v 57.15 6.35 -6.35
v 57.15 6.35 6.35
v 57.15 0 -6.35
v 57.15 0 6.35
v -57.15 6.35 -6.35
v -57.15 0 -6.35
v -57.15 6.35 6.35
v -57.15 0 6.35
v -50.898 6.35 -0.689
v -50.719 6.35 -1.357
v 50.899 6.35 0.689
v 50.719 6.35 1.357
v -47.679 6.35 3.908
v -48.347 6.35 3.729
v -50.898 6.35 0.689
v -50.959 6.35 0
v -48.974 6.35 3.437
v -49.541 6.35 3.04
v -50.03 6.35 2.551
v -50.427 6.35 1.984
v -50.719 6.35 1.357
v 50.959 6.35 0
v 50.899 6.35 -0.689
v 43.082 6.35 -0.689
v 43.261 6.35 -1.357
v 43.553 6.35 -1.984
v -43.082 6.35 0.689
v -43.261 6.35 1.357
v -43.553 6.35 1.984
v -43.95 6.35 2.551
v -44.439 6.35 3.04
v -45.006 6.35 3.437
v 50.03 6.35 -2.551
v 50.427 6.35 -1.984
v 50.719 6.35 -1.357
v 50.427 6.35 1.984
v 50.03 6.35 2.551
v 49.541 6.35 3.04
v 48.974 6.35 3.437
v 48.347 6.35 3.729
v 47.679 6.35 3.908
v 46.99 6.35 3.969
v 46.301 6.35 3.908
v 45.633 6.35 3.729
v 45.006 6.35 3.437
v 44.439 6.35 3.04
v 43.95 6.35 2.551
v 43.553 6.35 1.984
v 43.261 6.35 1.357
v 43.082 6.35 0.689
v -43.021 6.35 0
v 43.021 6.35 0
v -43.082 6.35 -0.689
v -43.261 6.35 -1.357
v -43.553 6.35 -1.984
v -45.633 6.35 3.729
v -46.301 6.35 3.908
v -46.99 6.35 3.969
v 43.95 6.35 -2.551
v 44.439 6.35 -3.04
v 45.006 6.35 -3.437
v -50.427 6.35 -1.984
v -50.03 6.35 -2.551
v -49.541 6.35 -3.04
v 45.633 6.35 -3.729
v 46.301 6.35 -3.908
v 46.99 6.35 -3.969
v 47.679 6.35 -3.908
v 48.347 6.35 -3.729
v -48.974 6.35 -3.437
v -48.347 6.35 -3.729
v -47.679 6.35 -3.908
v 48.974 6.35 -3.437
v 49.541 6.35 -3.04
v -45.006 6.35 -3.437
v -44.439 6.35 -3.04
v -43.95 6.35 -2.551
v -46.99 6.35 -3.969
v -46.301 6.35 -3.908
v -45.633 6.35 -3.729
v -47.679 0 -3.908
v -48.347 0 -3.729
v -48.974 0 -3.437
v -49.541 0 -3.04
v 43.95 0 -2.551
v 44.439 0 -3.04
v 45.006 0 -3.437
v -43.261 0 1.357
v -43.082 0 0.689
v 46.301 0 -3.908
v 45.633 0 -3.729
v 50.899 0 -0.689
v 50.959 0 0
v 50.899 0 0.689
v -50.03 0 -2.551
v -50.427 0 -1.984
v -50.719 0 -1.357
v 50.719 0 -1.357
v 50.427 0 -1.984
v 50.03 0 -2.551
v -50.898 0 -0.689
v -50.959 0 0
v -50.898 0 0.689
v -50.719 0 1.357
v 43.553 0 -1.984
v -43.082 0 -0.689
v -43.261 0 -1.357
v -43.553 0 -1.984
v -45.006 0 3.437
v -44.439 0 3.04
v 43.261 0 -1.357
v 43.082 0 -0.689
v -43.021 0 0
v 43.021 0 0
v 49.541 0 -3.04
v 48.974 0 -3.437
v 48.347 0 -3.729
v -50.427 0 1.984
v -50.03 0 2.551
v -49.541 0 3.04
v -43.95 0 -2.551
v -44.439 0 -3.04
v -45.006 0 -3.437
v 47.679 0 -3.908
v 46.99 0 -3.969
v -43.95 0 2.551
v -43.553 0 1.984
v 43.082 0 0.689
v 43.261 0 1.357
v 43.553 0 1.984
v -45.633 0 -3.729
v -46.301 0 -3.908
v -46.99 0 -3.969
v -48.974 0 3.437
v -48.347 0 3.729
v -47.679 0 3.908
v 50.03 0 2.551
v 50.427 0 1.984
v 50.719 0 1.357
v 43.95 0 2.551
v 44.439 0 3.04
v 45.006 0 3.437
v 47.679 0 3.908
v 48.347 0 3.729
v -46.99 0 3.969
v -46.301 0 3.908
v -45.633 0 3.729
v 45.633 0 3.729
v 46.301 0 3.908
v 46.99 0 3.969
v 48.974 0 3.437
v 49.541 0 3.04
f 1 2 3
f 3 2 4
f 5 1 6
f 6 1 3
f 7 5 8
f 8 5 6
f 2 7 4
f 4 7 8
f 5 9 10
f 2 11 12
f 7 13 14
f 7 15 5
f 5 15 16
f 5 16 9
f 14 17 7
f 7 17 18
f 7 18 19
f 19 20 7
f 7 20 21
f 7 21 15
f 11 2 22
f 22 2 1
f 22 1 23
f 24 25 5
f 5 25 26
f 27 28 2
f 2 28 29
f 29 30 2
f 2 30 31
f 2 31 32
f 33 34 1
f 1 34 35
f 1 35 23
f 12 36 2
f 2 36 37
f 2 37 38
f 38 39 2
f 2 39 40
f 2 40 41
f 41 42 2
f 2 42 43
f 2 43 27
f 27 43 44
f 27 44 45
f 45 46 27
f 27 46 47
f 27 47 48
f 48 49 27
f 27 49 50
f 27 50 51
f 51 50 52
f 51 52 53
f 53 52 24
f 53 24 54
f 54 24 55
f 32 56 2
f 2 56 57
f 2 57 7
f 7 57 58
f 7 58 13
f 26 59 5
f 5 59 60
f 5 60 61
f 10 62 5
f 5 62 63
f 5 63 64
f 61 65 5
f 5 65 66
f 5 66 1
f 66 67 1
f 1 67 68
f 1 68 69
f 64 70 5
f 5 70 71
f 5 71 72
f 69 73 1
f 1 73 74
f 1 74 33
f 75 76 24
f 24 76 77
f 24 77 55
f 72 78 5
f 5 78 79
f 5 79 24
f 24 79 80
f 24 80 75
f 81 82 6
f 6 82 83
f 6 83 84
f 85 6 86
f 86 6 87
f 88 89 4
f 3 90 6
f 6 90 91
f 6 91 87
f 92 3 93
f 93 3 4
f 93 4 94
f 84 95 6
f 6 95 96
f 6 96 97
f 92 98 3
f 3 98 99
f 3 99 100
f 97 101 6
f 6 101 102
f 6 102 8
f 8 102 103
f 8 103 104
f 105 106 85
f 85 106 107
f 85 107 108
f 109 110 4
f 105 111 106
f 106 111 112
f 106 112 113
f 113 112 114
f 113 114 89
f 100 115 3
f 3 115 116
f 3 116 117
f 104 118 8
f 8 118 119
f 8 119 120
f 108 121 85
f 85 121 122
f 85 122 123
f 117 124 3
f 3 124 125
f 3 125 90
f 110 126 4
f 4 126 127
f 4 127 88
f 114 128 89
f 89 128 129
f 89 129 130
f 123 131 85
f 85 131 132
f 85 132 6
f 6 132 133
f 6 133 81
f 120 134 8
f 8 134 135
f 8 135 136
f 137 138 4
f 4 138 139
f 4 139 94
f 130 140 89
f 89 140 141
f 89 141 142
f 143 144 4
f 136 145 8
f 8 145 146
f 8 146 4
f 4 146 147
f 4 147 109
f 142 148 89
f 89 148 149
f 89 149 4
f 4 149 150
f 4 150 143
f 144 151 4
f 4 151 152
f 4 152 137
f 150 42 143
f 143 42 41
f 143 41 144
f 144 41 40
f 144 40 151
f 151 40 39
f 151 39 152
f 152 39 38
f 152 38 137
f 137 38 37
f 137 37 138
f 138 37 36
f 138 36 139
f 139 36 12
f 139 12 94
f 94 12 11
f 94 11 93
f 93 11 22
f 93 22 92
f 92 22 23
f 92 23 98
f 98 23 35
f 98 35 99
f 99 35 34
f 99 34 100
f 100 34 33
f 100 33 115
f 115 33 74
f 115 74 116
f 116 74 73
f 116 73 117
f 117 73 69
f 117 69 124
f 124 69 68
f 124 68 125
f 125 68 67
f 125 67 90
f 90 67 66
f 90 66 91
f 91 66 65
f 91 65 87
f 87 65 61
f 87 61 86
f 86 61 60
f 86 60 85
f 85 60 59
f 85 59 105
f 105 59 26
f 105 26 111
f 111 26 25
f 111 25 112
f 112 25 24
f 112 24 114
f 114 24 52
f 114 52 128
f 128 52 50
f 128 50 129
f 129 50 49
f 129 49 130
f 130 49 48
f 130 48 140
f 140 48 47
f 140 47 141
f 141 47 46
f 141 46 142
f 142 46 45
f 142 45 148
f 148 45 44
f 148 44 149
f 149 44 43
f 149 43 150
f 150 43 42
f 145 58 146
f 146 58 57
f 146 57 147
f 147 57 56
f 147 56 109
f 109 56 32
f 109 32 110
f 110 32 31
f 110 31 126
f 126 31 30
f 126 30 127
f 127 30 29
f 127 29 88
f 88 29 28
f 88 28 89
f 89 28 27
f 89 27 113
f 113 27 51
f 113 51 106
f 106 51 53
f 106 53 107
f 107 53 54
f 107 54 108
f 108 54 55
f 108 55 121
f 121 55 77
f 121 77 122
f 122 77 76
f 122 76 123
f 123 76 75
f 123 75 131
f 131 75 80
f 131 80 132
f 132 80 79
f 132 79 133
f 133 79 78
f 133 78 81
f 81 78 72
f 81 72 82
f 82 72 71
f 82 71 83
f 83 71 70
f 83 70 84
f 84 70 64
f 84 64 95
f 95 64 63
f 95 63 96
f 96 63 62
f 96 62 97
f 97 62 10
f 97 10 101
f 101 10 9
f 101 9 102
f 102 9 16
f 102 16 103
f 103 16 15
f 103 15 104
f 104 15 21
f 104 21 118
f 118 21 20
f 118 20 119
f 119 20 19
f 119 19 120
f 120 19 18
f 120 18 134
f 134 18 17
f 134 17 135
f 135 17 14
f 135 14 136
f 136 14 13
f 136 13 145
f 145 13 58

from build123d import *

# Parameters (mm, degrees)
SKETCH1_W                          = 114.3
SKETCH1_H                          = 12.7
BOSS_EXTRUDE1_DEPTH                = 6.35
F_5_16_0_3125_DIAMETER_HOLE1_D     = 7.9375
F_5_16_0_3125_DIAMETER_HOLE1_DEPTH = 14.986
F_5_16_0_3125_DIAMETER_HOLE1_TIP   = 2.384665582


with BuildPart() as part:
    # Sketch1 → Boss-Extrude1 (new body)
    with BuildSketch(Plane(origin=(0, 0, 0), x_dir=(1, 0, 0), z_dir=(0, 1, 0))):
        Rectangle(SKETCH1_W, SKETCH1_H)
    extrude(amount=BOSS_EXTRUDE1_DEPTH)

    # 5/16 (0.3125) Diameter Hole1
    with Locations(Plane(origin=(0, 6.35, 0), x_dir=(1, 0, 0), z_dir=(0, 1, 0))):
        with Locations((-46.99, 0), (46.99, 0)):
            Hole(F_5_16_0_3125_DIAMETER_HOLE1_D / 2, depth=F_5_16_0_3125_DIAMETER_HOLE1_DEPTH)
            with Locations((0, 0, -(F_5_16_0_3125_DIAMETER_HOLE1_DEPTH + F_5_16_0_3125_DIAMETER_HOLE1_TIP / 2))):  # 118° drill point
                Cone(0, F_5_16_0_3125_DIAMETER_HOLE1_D / 2, F_5_16_0_3125_DIAMETER_HOLE1_TIP, mode=Mode.SUBTRACT)


solid = part.part
